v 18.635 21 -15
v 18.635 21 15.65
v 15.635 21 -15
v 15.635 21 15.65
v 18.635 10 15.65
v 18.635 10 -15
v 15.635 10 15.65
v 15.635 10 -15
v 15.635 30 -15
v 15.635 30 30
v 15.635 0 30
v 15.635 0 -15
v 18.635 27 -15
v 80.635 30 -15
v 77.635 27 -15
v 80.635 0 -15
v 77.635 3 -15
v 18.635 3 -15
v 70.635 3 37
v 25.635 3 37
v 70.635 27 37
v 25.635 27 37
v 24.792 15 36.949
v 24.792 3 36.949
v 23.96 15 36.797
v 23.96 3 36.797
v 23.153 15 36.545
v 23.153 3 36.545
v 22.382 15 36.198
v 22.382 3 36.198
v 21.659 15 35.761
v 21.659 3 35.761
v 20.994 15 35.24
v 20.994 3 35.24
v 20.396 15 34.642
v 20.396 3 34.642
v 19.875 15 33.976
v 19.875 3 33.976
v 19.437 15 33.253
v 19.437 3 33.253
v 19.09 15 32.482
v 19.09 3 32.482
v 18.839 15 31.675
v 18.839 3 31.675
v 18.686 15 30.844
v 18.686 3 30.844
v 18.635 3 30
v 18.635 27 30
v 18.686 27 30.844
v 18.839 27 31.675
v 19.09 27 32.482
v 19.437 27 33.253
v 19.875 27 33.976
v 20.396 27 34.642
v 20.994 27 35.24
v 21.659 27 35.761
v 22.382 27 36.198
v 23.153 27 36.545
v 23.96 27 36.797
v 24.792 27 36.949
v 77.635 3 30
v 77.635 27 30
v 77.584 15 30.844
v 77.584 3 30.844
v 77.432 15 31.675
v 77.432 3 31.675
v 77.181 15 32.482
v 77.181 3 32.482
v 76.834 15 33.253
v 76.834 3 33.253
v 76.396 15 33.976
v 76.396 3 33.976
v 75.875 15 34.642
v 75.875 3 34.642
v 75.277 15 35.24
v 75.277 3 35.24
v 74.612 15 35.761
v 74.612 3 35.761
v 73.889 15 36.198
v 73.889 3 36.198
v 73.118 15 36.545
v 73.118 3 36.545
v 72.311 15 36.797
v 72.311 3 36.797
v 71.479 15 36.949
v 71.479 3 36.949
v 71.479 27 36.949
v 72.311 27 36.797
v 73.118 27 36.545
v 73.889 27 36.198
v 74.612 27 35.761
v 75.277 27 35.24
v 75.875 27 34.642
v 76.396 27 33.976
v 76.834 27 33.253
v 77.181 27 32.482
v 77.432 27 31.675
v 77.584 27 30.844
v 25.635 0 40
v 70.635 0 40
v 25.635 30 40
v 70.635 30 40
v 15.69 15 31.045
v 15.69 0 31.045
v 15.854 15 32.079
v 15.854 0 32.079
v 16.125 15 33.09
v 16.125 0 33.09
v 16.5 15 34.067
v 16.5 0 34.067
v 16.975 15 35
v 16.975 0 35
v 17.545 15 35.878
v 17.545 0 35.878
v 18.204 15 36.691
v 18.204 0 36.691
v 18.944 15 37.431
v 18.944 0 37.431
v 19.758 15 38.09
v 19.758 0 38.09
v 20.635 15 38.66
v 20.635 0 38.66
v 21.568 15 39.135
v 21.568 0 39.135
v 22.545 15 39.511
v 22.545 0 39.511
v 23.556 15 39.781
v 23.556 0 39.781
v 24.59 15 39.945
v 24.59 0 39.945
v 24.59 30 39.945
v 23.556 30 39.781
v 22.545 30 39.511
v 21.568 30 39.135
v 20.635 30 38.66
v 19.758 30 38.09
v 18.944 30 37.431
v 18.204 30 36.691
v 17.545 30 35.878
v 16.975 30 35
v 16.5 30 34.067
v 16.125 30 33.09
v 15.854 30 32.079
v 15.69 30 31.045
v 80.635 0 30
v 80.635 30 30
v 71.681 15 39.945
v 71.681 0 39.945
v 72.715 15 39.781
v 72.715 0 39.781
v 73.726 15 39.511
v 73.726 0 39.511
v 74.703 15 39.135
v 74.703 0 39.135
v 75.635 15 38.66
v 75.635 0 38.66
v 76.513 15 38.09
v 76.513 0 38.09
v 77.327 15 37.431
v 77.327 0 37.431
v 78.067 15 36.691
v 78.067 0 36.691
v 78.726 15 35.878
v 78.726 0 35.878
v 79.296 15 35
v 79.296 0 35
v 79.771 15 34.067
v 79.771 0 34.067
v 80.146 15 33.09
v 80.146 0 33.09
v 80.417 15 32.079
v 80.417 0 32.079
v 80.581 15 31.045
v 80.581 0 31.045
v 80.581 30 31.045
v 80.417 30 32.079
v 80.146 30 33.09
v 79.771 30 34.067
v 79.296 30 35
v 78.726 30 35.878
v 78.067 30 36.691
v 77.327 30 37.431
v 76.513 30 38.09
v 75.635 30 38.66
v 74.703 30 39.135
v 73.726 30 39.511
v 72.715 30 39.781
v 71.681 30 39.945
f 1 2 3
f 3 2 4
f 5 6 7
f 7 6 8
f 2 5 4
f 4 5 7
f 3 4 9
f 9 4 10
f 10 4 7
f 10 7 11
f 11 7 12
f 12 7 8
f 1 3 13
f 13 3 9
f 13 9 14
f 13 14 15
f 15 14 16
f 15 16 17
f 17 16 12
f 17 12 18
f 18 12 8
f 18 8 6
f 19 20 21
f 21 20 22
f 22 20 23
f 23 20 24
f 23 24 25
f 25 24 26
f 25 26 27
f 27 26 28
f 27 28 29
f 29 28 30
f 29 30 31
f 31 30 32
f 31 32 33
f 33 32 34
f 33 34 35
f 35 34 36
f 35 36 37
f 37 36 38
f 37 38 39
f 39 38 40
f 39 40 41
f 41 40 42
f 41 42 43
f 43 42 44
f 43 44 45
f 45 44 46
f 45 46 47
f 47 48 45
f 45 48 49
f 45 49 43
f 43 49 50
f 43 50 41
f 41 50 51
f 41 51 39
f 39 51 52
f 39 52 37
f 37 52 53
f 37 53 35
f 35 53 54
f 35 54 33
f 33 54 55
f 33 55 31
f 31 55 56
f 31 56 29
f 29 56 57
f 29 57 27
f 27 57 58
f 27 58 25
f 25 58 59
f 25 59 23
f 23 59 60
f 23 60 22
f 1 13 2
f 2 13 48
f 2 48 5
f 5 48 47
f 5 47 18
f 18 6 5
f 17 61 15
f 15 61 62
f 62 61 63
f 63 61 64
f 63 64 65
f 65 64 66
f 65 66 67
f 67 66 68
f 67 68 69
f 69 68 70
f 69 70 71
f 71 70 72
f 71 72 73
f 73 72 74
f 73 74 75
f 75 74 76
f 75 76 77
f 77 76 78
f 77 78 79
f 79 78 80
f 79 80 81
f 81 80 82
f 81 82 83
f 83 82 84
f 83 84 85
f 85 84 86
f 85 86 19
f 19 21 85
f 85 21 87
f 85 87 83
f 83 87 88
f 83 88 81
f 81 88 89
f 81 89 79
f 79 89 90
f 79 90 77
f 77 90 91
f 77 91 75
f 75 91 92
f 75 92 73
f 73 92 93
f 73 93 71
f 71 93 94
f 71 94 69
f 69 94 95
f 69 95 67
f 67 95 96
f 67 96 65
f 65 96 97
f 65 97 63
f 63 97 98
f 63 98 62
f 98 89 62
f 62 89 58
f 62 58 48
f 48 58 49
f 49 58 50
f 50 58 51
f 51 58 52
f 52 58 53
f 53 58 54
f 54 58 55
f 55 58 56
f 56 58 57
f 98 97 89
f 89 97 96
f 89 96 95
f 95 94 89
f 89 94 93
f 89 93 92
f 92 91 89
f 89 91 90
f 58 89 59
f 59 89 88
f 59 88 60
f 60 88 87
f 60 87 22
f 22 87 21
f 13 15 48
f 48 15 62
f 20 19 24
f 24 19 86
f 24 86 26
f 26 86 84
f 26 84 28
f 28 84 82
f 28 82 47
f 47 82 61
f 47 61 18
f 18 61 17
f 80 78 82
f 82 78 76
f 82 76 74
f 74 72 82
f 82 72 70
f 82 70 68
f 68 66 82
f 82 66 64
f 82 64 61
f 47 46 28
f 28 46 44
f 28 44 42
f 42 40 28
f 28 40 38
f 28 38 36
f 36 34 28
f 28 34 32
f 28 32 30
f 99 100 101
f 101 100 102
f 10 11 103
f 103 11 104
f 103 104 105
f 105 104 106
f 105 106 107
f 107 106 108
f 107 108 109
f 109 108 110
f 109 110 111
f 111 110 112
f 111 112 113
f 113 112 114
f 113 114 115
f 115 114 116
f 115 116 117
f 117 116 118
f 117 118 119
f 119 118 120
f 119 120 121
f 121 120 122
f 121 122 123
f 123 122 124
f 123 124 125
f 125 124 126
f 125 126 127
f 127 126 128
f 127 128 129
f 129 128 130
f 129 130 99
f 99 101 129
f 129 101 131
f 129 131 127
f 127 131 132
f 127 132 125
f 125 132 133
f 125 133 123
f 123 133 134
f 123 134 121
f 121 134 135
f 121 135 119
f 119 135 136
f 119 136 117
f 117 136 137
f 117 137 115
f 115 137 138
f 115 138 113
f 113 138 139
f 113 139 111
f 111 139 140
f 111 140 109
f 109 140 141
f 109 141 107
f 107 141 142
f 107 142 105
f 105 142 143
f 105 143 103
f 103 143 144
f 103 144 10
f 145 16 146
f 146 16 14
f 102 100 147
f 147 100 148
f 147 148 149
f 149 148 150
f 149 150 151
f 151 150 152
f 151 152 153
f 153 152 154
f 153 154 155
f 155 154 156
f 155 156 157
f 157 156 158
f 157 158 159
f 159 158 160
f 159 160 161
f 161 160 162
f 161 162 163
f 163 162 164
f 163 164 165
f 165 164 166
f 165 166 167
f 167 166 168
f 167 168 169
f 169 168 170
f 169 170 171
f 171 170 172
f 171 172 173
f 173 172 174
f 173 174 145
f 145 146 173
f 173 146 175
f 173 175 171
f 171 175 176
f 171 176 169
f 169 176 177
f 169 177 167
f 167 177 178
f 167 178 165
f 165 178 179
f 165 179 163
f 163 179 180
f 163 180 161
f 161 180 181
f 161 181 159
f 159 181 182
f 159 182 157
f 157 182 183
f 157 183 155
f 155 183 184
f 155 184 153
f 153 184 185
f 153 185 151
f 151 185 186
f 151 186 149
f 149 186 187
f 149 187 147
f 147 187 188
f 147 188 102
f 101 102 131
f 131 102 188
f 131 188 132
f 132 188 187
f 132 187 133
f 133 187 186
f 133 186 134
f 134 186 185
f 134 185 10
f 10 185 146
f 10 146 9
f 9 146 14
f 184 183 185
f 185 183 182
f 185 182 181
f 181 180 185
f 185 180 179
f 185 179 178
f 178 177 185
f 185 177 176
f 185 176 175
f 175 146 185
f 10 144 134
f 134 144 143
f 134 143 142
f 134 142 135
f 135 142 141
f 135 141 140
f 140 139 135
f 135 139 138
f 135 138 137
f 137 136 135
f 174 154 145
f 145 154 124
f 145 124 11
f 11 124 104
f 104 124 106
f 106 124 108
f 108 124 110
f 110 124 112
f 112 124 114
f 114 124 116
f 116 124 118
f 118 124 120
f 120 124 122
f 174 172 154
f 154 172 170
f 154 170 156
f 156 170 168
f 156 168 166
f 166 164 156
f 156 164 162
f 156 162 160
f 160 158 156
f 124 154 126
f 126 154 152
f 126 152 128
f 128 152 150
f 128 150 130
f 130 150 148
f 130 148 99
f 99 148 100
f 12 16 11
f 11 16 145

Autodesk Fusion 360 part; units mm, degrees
sketch "Sketch1" plane through (0, 0, 0) normal (0, 1, 0) x (1, 0, 0)
  line L0 (25.6354, -40) -> (70.6354, -40)
  line L1 (80.6354, -30) -> (80.6354, 15)
  line L2 (80.6354, 15) -> (15.6354, 15)
  line L3 (15.6354, 15) -> (15.6354, -30)
  arc A0 (15.6354, -30) -> (25.6354, -40) centre (25.6354, -30) ccw
  arc A1 (70.6354, -40) -> (80.6354, -30) centre (70.6354, -30) ccw
  dimension "d1" = 65
  dimension "d2" = 55
  dimension "d3" = 10
  dimension "d4" = 10
extrude "Extrude2" add sketch "Sketch1" along normal blind 30
shell "Shell2" thickness 3 removed faces 1 at (58.9688, 20, -15)
sketch "Sketch2" plane through (0, 0, 0) normal (1, 0, 0) x (0, 1, 0)
  line L0 (21, 15.6496) -> (10, 15.6496)
  line L1 (10, 15.6496) -> (10, -16.8071)
  line L2 (10, -16.8071) -> (21, -16.8071)
  line L3 (21, -16.8071) -> (21, 15.6496)
  dimension "d11" = 11
extrude "Extrude3" cut sketch "Sketch2" along normal blind 25
